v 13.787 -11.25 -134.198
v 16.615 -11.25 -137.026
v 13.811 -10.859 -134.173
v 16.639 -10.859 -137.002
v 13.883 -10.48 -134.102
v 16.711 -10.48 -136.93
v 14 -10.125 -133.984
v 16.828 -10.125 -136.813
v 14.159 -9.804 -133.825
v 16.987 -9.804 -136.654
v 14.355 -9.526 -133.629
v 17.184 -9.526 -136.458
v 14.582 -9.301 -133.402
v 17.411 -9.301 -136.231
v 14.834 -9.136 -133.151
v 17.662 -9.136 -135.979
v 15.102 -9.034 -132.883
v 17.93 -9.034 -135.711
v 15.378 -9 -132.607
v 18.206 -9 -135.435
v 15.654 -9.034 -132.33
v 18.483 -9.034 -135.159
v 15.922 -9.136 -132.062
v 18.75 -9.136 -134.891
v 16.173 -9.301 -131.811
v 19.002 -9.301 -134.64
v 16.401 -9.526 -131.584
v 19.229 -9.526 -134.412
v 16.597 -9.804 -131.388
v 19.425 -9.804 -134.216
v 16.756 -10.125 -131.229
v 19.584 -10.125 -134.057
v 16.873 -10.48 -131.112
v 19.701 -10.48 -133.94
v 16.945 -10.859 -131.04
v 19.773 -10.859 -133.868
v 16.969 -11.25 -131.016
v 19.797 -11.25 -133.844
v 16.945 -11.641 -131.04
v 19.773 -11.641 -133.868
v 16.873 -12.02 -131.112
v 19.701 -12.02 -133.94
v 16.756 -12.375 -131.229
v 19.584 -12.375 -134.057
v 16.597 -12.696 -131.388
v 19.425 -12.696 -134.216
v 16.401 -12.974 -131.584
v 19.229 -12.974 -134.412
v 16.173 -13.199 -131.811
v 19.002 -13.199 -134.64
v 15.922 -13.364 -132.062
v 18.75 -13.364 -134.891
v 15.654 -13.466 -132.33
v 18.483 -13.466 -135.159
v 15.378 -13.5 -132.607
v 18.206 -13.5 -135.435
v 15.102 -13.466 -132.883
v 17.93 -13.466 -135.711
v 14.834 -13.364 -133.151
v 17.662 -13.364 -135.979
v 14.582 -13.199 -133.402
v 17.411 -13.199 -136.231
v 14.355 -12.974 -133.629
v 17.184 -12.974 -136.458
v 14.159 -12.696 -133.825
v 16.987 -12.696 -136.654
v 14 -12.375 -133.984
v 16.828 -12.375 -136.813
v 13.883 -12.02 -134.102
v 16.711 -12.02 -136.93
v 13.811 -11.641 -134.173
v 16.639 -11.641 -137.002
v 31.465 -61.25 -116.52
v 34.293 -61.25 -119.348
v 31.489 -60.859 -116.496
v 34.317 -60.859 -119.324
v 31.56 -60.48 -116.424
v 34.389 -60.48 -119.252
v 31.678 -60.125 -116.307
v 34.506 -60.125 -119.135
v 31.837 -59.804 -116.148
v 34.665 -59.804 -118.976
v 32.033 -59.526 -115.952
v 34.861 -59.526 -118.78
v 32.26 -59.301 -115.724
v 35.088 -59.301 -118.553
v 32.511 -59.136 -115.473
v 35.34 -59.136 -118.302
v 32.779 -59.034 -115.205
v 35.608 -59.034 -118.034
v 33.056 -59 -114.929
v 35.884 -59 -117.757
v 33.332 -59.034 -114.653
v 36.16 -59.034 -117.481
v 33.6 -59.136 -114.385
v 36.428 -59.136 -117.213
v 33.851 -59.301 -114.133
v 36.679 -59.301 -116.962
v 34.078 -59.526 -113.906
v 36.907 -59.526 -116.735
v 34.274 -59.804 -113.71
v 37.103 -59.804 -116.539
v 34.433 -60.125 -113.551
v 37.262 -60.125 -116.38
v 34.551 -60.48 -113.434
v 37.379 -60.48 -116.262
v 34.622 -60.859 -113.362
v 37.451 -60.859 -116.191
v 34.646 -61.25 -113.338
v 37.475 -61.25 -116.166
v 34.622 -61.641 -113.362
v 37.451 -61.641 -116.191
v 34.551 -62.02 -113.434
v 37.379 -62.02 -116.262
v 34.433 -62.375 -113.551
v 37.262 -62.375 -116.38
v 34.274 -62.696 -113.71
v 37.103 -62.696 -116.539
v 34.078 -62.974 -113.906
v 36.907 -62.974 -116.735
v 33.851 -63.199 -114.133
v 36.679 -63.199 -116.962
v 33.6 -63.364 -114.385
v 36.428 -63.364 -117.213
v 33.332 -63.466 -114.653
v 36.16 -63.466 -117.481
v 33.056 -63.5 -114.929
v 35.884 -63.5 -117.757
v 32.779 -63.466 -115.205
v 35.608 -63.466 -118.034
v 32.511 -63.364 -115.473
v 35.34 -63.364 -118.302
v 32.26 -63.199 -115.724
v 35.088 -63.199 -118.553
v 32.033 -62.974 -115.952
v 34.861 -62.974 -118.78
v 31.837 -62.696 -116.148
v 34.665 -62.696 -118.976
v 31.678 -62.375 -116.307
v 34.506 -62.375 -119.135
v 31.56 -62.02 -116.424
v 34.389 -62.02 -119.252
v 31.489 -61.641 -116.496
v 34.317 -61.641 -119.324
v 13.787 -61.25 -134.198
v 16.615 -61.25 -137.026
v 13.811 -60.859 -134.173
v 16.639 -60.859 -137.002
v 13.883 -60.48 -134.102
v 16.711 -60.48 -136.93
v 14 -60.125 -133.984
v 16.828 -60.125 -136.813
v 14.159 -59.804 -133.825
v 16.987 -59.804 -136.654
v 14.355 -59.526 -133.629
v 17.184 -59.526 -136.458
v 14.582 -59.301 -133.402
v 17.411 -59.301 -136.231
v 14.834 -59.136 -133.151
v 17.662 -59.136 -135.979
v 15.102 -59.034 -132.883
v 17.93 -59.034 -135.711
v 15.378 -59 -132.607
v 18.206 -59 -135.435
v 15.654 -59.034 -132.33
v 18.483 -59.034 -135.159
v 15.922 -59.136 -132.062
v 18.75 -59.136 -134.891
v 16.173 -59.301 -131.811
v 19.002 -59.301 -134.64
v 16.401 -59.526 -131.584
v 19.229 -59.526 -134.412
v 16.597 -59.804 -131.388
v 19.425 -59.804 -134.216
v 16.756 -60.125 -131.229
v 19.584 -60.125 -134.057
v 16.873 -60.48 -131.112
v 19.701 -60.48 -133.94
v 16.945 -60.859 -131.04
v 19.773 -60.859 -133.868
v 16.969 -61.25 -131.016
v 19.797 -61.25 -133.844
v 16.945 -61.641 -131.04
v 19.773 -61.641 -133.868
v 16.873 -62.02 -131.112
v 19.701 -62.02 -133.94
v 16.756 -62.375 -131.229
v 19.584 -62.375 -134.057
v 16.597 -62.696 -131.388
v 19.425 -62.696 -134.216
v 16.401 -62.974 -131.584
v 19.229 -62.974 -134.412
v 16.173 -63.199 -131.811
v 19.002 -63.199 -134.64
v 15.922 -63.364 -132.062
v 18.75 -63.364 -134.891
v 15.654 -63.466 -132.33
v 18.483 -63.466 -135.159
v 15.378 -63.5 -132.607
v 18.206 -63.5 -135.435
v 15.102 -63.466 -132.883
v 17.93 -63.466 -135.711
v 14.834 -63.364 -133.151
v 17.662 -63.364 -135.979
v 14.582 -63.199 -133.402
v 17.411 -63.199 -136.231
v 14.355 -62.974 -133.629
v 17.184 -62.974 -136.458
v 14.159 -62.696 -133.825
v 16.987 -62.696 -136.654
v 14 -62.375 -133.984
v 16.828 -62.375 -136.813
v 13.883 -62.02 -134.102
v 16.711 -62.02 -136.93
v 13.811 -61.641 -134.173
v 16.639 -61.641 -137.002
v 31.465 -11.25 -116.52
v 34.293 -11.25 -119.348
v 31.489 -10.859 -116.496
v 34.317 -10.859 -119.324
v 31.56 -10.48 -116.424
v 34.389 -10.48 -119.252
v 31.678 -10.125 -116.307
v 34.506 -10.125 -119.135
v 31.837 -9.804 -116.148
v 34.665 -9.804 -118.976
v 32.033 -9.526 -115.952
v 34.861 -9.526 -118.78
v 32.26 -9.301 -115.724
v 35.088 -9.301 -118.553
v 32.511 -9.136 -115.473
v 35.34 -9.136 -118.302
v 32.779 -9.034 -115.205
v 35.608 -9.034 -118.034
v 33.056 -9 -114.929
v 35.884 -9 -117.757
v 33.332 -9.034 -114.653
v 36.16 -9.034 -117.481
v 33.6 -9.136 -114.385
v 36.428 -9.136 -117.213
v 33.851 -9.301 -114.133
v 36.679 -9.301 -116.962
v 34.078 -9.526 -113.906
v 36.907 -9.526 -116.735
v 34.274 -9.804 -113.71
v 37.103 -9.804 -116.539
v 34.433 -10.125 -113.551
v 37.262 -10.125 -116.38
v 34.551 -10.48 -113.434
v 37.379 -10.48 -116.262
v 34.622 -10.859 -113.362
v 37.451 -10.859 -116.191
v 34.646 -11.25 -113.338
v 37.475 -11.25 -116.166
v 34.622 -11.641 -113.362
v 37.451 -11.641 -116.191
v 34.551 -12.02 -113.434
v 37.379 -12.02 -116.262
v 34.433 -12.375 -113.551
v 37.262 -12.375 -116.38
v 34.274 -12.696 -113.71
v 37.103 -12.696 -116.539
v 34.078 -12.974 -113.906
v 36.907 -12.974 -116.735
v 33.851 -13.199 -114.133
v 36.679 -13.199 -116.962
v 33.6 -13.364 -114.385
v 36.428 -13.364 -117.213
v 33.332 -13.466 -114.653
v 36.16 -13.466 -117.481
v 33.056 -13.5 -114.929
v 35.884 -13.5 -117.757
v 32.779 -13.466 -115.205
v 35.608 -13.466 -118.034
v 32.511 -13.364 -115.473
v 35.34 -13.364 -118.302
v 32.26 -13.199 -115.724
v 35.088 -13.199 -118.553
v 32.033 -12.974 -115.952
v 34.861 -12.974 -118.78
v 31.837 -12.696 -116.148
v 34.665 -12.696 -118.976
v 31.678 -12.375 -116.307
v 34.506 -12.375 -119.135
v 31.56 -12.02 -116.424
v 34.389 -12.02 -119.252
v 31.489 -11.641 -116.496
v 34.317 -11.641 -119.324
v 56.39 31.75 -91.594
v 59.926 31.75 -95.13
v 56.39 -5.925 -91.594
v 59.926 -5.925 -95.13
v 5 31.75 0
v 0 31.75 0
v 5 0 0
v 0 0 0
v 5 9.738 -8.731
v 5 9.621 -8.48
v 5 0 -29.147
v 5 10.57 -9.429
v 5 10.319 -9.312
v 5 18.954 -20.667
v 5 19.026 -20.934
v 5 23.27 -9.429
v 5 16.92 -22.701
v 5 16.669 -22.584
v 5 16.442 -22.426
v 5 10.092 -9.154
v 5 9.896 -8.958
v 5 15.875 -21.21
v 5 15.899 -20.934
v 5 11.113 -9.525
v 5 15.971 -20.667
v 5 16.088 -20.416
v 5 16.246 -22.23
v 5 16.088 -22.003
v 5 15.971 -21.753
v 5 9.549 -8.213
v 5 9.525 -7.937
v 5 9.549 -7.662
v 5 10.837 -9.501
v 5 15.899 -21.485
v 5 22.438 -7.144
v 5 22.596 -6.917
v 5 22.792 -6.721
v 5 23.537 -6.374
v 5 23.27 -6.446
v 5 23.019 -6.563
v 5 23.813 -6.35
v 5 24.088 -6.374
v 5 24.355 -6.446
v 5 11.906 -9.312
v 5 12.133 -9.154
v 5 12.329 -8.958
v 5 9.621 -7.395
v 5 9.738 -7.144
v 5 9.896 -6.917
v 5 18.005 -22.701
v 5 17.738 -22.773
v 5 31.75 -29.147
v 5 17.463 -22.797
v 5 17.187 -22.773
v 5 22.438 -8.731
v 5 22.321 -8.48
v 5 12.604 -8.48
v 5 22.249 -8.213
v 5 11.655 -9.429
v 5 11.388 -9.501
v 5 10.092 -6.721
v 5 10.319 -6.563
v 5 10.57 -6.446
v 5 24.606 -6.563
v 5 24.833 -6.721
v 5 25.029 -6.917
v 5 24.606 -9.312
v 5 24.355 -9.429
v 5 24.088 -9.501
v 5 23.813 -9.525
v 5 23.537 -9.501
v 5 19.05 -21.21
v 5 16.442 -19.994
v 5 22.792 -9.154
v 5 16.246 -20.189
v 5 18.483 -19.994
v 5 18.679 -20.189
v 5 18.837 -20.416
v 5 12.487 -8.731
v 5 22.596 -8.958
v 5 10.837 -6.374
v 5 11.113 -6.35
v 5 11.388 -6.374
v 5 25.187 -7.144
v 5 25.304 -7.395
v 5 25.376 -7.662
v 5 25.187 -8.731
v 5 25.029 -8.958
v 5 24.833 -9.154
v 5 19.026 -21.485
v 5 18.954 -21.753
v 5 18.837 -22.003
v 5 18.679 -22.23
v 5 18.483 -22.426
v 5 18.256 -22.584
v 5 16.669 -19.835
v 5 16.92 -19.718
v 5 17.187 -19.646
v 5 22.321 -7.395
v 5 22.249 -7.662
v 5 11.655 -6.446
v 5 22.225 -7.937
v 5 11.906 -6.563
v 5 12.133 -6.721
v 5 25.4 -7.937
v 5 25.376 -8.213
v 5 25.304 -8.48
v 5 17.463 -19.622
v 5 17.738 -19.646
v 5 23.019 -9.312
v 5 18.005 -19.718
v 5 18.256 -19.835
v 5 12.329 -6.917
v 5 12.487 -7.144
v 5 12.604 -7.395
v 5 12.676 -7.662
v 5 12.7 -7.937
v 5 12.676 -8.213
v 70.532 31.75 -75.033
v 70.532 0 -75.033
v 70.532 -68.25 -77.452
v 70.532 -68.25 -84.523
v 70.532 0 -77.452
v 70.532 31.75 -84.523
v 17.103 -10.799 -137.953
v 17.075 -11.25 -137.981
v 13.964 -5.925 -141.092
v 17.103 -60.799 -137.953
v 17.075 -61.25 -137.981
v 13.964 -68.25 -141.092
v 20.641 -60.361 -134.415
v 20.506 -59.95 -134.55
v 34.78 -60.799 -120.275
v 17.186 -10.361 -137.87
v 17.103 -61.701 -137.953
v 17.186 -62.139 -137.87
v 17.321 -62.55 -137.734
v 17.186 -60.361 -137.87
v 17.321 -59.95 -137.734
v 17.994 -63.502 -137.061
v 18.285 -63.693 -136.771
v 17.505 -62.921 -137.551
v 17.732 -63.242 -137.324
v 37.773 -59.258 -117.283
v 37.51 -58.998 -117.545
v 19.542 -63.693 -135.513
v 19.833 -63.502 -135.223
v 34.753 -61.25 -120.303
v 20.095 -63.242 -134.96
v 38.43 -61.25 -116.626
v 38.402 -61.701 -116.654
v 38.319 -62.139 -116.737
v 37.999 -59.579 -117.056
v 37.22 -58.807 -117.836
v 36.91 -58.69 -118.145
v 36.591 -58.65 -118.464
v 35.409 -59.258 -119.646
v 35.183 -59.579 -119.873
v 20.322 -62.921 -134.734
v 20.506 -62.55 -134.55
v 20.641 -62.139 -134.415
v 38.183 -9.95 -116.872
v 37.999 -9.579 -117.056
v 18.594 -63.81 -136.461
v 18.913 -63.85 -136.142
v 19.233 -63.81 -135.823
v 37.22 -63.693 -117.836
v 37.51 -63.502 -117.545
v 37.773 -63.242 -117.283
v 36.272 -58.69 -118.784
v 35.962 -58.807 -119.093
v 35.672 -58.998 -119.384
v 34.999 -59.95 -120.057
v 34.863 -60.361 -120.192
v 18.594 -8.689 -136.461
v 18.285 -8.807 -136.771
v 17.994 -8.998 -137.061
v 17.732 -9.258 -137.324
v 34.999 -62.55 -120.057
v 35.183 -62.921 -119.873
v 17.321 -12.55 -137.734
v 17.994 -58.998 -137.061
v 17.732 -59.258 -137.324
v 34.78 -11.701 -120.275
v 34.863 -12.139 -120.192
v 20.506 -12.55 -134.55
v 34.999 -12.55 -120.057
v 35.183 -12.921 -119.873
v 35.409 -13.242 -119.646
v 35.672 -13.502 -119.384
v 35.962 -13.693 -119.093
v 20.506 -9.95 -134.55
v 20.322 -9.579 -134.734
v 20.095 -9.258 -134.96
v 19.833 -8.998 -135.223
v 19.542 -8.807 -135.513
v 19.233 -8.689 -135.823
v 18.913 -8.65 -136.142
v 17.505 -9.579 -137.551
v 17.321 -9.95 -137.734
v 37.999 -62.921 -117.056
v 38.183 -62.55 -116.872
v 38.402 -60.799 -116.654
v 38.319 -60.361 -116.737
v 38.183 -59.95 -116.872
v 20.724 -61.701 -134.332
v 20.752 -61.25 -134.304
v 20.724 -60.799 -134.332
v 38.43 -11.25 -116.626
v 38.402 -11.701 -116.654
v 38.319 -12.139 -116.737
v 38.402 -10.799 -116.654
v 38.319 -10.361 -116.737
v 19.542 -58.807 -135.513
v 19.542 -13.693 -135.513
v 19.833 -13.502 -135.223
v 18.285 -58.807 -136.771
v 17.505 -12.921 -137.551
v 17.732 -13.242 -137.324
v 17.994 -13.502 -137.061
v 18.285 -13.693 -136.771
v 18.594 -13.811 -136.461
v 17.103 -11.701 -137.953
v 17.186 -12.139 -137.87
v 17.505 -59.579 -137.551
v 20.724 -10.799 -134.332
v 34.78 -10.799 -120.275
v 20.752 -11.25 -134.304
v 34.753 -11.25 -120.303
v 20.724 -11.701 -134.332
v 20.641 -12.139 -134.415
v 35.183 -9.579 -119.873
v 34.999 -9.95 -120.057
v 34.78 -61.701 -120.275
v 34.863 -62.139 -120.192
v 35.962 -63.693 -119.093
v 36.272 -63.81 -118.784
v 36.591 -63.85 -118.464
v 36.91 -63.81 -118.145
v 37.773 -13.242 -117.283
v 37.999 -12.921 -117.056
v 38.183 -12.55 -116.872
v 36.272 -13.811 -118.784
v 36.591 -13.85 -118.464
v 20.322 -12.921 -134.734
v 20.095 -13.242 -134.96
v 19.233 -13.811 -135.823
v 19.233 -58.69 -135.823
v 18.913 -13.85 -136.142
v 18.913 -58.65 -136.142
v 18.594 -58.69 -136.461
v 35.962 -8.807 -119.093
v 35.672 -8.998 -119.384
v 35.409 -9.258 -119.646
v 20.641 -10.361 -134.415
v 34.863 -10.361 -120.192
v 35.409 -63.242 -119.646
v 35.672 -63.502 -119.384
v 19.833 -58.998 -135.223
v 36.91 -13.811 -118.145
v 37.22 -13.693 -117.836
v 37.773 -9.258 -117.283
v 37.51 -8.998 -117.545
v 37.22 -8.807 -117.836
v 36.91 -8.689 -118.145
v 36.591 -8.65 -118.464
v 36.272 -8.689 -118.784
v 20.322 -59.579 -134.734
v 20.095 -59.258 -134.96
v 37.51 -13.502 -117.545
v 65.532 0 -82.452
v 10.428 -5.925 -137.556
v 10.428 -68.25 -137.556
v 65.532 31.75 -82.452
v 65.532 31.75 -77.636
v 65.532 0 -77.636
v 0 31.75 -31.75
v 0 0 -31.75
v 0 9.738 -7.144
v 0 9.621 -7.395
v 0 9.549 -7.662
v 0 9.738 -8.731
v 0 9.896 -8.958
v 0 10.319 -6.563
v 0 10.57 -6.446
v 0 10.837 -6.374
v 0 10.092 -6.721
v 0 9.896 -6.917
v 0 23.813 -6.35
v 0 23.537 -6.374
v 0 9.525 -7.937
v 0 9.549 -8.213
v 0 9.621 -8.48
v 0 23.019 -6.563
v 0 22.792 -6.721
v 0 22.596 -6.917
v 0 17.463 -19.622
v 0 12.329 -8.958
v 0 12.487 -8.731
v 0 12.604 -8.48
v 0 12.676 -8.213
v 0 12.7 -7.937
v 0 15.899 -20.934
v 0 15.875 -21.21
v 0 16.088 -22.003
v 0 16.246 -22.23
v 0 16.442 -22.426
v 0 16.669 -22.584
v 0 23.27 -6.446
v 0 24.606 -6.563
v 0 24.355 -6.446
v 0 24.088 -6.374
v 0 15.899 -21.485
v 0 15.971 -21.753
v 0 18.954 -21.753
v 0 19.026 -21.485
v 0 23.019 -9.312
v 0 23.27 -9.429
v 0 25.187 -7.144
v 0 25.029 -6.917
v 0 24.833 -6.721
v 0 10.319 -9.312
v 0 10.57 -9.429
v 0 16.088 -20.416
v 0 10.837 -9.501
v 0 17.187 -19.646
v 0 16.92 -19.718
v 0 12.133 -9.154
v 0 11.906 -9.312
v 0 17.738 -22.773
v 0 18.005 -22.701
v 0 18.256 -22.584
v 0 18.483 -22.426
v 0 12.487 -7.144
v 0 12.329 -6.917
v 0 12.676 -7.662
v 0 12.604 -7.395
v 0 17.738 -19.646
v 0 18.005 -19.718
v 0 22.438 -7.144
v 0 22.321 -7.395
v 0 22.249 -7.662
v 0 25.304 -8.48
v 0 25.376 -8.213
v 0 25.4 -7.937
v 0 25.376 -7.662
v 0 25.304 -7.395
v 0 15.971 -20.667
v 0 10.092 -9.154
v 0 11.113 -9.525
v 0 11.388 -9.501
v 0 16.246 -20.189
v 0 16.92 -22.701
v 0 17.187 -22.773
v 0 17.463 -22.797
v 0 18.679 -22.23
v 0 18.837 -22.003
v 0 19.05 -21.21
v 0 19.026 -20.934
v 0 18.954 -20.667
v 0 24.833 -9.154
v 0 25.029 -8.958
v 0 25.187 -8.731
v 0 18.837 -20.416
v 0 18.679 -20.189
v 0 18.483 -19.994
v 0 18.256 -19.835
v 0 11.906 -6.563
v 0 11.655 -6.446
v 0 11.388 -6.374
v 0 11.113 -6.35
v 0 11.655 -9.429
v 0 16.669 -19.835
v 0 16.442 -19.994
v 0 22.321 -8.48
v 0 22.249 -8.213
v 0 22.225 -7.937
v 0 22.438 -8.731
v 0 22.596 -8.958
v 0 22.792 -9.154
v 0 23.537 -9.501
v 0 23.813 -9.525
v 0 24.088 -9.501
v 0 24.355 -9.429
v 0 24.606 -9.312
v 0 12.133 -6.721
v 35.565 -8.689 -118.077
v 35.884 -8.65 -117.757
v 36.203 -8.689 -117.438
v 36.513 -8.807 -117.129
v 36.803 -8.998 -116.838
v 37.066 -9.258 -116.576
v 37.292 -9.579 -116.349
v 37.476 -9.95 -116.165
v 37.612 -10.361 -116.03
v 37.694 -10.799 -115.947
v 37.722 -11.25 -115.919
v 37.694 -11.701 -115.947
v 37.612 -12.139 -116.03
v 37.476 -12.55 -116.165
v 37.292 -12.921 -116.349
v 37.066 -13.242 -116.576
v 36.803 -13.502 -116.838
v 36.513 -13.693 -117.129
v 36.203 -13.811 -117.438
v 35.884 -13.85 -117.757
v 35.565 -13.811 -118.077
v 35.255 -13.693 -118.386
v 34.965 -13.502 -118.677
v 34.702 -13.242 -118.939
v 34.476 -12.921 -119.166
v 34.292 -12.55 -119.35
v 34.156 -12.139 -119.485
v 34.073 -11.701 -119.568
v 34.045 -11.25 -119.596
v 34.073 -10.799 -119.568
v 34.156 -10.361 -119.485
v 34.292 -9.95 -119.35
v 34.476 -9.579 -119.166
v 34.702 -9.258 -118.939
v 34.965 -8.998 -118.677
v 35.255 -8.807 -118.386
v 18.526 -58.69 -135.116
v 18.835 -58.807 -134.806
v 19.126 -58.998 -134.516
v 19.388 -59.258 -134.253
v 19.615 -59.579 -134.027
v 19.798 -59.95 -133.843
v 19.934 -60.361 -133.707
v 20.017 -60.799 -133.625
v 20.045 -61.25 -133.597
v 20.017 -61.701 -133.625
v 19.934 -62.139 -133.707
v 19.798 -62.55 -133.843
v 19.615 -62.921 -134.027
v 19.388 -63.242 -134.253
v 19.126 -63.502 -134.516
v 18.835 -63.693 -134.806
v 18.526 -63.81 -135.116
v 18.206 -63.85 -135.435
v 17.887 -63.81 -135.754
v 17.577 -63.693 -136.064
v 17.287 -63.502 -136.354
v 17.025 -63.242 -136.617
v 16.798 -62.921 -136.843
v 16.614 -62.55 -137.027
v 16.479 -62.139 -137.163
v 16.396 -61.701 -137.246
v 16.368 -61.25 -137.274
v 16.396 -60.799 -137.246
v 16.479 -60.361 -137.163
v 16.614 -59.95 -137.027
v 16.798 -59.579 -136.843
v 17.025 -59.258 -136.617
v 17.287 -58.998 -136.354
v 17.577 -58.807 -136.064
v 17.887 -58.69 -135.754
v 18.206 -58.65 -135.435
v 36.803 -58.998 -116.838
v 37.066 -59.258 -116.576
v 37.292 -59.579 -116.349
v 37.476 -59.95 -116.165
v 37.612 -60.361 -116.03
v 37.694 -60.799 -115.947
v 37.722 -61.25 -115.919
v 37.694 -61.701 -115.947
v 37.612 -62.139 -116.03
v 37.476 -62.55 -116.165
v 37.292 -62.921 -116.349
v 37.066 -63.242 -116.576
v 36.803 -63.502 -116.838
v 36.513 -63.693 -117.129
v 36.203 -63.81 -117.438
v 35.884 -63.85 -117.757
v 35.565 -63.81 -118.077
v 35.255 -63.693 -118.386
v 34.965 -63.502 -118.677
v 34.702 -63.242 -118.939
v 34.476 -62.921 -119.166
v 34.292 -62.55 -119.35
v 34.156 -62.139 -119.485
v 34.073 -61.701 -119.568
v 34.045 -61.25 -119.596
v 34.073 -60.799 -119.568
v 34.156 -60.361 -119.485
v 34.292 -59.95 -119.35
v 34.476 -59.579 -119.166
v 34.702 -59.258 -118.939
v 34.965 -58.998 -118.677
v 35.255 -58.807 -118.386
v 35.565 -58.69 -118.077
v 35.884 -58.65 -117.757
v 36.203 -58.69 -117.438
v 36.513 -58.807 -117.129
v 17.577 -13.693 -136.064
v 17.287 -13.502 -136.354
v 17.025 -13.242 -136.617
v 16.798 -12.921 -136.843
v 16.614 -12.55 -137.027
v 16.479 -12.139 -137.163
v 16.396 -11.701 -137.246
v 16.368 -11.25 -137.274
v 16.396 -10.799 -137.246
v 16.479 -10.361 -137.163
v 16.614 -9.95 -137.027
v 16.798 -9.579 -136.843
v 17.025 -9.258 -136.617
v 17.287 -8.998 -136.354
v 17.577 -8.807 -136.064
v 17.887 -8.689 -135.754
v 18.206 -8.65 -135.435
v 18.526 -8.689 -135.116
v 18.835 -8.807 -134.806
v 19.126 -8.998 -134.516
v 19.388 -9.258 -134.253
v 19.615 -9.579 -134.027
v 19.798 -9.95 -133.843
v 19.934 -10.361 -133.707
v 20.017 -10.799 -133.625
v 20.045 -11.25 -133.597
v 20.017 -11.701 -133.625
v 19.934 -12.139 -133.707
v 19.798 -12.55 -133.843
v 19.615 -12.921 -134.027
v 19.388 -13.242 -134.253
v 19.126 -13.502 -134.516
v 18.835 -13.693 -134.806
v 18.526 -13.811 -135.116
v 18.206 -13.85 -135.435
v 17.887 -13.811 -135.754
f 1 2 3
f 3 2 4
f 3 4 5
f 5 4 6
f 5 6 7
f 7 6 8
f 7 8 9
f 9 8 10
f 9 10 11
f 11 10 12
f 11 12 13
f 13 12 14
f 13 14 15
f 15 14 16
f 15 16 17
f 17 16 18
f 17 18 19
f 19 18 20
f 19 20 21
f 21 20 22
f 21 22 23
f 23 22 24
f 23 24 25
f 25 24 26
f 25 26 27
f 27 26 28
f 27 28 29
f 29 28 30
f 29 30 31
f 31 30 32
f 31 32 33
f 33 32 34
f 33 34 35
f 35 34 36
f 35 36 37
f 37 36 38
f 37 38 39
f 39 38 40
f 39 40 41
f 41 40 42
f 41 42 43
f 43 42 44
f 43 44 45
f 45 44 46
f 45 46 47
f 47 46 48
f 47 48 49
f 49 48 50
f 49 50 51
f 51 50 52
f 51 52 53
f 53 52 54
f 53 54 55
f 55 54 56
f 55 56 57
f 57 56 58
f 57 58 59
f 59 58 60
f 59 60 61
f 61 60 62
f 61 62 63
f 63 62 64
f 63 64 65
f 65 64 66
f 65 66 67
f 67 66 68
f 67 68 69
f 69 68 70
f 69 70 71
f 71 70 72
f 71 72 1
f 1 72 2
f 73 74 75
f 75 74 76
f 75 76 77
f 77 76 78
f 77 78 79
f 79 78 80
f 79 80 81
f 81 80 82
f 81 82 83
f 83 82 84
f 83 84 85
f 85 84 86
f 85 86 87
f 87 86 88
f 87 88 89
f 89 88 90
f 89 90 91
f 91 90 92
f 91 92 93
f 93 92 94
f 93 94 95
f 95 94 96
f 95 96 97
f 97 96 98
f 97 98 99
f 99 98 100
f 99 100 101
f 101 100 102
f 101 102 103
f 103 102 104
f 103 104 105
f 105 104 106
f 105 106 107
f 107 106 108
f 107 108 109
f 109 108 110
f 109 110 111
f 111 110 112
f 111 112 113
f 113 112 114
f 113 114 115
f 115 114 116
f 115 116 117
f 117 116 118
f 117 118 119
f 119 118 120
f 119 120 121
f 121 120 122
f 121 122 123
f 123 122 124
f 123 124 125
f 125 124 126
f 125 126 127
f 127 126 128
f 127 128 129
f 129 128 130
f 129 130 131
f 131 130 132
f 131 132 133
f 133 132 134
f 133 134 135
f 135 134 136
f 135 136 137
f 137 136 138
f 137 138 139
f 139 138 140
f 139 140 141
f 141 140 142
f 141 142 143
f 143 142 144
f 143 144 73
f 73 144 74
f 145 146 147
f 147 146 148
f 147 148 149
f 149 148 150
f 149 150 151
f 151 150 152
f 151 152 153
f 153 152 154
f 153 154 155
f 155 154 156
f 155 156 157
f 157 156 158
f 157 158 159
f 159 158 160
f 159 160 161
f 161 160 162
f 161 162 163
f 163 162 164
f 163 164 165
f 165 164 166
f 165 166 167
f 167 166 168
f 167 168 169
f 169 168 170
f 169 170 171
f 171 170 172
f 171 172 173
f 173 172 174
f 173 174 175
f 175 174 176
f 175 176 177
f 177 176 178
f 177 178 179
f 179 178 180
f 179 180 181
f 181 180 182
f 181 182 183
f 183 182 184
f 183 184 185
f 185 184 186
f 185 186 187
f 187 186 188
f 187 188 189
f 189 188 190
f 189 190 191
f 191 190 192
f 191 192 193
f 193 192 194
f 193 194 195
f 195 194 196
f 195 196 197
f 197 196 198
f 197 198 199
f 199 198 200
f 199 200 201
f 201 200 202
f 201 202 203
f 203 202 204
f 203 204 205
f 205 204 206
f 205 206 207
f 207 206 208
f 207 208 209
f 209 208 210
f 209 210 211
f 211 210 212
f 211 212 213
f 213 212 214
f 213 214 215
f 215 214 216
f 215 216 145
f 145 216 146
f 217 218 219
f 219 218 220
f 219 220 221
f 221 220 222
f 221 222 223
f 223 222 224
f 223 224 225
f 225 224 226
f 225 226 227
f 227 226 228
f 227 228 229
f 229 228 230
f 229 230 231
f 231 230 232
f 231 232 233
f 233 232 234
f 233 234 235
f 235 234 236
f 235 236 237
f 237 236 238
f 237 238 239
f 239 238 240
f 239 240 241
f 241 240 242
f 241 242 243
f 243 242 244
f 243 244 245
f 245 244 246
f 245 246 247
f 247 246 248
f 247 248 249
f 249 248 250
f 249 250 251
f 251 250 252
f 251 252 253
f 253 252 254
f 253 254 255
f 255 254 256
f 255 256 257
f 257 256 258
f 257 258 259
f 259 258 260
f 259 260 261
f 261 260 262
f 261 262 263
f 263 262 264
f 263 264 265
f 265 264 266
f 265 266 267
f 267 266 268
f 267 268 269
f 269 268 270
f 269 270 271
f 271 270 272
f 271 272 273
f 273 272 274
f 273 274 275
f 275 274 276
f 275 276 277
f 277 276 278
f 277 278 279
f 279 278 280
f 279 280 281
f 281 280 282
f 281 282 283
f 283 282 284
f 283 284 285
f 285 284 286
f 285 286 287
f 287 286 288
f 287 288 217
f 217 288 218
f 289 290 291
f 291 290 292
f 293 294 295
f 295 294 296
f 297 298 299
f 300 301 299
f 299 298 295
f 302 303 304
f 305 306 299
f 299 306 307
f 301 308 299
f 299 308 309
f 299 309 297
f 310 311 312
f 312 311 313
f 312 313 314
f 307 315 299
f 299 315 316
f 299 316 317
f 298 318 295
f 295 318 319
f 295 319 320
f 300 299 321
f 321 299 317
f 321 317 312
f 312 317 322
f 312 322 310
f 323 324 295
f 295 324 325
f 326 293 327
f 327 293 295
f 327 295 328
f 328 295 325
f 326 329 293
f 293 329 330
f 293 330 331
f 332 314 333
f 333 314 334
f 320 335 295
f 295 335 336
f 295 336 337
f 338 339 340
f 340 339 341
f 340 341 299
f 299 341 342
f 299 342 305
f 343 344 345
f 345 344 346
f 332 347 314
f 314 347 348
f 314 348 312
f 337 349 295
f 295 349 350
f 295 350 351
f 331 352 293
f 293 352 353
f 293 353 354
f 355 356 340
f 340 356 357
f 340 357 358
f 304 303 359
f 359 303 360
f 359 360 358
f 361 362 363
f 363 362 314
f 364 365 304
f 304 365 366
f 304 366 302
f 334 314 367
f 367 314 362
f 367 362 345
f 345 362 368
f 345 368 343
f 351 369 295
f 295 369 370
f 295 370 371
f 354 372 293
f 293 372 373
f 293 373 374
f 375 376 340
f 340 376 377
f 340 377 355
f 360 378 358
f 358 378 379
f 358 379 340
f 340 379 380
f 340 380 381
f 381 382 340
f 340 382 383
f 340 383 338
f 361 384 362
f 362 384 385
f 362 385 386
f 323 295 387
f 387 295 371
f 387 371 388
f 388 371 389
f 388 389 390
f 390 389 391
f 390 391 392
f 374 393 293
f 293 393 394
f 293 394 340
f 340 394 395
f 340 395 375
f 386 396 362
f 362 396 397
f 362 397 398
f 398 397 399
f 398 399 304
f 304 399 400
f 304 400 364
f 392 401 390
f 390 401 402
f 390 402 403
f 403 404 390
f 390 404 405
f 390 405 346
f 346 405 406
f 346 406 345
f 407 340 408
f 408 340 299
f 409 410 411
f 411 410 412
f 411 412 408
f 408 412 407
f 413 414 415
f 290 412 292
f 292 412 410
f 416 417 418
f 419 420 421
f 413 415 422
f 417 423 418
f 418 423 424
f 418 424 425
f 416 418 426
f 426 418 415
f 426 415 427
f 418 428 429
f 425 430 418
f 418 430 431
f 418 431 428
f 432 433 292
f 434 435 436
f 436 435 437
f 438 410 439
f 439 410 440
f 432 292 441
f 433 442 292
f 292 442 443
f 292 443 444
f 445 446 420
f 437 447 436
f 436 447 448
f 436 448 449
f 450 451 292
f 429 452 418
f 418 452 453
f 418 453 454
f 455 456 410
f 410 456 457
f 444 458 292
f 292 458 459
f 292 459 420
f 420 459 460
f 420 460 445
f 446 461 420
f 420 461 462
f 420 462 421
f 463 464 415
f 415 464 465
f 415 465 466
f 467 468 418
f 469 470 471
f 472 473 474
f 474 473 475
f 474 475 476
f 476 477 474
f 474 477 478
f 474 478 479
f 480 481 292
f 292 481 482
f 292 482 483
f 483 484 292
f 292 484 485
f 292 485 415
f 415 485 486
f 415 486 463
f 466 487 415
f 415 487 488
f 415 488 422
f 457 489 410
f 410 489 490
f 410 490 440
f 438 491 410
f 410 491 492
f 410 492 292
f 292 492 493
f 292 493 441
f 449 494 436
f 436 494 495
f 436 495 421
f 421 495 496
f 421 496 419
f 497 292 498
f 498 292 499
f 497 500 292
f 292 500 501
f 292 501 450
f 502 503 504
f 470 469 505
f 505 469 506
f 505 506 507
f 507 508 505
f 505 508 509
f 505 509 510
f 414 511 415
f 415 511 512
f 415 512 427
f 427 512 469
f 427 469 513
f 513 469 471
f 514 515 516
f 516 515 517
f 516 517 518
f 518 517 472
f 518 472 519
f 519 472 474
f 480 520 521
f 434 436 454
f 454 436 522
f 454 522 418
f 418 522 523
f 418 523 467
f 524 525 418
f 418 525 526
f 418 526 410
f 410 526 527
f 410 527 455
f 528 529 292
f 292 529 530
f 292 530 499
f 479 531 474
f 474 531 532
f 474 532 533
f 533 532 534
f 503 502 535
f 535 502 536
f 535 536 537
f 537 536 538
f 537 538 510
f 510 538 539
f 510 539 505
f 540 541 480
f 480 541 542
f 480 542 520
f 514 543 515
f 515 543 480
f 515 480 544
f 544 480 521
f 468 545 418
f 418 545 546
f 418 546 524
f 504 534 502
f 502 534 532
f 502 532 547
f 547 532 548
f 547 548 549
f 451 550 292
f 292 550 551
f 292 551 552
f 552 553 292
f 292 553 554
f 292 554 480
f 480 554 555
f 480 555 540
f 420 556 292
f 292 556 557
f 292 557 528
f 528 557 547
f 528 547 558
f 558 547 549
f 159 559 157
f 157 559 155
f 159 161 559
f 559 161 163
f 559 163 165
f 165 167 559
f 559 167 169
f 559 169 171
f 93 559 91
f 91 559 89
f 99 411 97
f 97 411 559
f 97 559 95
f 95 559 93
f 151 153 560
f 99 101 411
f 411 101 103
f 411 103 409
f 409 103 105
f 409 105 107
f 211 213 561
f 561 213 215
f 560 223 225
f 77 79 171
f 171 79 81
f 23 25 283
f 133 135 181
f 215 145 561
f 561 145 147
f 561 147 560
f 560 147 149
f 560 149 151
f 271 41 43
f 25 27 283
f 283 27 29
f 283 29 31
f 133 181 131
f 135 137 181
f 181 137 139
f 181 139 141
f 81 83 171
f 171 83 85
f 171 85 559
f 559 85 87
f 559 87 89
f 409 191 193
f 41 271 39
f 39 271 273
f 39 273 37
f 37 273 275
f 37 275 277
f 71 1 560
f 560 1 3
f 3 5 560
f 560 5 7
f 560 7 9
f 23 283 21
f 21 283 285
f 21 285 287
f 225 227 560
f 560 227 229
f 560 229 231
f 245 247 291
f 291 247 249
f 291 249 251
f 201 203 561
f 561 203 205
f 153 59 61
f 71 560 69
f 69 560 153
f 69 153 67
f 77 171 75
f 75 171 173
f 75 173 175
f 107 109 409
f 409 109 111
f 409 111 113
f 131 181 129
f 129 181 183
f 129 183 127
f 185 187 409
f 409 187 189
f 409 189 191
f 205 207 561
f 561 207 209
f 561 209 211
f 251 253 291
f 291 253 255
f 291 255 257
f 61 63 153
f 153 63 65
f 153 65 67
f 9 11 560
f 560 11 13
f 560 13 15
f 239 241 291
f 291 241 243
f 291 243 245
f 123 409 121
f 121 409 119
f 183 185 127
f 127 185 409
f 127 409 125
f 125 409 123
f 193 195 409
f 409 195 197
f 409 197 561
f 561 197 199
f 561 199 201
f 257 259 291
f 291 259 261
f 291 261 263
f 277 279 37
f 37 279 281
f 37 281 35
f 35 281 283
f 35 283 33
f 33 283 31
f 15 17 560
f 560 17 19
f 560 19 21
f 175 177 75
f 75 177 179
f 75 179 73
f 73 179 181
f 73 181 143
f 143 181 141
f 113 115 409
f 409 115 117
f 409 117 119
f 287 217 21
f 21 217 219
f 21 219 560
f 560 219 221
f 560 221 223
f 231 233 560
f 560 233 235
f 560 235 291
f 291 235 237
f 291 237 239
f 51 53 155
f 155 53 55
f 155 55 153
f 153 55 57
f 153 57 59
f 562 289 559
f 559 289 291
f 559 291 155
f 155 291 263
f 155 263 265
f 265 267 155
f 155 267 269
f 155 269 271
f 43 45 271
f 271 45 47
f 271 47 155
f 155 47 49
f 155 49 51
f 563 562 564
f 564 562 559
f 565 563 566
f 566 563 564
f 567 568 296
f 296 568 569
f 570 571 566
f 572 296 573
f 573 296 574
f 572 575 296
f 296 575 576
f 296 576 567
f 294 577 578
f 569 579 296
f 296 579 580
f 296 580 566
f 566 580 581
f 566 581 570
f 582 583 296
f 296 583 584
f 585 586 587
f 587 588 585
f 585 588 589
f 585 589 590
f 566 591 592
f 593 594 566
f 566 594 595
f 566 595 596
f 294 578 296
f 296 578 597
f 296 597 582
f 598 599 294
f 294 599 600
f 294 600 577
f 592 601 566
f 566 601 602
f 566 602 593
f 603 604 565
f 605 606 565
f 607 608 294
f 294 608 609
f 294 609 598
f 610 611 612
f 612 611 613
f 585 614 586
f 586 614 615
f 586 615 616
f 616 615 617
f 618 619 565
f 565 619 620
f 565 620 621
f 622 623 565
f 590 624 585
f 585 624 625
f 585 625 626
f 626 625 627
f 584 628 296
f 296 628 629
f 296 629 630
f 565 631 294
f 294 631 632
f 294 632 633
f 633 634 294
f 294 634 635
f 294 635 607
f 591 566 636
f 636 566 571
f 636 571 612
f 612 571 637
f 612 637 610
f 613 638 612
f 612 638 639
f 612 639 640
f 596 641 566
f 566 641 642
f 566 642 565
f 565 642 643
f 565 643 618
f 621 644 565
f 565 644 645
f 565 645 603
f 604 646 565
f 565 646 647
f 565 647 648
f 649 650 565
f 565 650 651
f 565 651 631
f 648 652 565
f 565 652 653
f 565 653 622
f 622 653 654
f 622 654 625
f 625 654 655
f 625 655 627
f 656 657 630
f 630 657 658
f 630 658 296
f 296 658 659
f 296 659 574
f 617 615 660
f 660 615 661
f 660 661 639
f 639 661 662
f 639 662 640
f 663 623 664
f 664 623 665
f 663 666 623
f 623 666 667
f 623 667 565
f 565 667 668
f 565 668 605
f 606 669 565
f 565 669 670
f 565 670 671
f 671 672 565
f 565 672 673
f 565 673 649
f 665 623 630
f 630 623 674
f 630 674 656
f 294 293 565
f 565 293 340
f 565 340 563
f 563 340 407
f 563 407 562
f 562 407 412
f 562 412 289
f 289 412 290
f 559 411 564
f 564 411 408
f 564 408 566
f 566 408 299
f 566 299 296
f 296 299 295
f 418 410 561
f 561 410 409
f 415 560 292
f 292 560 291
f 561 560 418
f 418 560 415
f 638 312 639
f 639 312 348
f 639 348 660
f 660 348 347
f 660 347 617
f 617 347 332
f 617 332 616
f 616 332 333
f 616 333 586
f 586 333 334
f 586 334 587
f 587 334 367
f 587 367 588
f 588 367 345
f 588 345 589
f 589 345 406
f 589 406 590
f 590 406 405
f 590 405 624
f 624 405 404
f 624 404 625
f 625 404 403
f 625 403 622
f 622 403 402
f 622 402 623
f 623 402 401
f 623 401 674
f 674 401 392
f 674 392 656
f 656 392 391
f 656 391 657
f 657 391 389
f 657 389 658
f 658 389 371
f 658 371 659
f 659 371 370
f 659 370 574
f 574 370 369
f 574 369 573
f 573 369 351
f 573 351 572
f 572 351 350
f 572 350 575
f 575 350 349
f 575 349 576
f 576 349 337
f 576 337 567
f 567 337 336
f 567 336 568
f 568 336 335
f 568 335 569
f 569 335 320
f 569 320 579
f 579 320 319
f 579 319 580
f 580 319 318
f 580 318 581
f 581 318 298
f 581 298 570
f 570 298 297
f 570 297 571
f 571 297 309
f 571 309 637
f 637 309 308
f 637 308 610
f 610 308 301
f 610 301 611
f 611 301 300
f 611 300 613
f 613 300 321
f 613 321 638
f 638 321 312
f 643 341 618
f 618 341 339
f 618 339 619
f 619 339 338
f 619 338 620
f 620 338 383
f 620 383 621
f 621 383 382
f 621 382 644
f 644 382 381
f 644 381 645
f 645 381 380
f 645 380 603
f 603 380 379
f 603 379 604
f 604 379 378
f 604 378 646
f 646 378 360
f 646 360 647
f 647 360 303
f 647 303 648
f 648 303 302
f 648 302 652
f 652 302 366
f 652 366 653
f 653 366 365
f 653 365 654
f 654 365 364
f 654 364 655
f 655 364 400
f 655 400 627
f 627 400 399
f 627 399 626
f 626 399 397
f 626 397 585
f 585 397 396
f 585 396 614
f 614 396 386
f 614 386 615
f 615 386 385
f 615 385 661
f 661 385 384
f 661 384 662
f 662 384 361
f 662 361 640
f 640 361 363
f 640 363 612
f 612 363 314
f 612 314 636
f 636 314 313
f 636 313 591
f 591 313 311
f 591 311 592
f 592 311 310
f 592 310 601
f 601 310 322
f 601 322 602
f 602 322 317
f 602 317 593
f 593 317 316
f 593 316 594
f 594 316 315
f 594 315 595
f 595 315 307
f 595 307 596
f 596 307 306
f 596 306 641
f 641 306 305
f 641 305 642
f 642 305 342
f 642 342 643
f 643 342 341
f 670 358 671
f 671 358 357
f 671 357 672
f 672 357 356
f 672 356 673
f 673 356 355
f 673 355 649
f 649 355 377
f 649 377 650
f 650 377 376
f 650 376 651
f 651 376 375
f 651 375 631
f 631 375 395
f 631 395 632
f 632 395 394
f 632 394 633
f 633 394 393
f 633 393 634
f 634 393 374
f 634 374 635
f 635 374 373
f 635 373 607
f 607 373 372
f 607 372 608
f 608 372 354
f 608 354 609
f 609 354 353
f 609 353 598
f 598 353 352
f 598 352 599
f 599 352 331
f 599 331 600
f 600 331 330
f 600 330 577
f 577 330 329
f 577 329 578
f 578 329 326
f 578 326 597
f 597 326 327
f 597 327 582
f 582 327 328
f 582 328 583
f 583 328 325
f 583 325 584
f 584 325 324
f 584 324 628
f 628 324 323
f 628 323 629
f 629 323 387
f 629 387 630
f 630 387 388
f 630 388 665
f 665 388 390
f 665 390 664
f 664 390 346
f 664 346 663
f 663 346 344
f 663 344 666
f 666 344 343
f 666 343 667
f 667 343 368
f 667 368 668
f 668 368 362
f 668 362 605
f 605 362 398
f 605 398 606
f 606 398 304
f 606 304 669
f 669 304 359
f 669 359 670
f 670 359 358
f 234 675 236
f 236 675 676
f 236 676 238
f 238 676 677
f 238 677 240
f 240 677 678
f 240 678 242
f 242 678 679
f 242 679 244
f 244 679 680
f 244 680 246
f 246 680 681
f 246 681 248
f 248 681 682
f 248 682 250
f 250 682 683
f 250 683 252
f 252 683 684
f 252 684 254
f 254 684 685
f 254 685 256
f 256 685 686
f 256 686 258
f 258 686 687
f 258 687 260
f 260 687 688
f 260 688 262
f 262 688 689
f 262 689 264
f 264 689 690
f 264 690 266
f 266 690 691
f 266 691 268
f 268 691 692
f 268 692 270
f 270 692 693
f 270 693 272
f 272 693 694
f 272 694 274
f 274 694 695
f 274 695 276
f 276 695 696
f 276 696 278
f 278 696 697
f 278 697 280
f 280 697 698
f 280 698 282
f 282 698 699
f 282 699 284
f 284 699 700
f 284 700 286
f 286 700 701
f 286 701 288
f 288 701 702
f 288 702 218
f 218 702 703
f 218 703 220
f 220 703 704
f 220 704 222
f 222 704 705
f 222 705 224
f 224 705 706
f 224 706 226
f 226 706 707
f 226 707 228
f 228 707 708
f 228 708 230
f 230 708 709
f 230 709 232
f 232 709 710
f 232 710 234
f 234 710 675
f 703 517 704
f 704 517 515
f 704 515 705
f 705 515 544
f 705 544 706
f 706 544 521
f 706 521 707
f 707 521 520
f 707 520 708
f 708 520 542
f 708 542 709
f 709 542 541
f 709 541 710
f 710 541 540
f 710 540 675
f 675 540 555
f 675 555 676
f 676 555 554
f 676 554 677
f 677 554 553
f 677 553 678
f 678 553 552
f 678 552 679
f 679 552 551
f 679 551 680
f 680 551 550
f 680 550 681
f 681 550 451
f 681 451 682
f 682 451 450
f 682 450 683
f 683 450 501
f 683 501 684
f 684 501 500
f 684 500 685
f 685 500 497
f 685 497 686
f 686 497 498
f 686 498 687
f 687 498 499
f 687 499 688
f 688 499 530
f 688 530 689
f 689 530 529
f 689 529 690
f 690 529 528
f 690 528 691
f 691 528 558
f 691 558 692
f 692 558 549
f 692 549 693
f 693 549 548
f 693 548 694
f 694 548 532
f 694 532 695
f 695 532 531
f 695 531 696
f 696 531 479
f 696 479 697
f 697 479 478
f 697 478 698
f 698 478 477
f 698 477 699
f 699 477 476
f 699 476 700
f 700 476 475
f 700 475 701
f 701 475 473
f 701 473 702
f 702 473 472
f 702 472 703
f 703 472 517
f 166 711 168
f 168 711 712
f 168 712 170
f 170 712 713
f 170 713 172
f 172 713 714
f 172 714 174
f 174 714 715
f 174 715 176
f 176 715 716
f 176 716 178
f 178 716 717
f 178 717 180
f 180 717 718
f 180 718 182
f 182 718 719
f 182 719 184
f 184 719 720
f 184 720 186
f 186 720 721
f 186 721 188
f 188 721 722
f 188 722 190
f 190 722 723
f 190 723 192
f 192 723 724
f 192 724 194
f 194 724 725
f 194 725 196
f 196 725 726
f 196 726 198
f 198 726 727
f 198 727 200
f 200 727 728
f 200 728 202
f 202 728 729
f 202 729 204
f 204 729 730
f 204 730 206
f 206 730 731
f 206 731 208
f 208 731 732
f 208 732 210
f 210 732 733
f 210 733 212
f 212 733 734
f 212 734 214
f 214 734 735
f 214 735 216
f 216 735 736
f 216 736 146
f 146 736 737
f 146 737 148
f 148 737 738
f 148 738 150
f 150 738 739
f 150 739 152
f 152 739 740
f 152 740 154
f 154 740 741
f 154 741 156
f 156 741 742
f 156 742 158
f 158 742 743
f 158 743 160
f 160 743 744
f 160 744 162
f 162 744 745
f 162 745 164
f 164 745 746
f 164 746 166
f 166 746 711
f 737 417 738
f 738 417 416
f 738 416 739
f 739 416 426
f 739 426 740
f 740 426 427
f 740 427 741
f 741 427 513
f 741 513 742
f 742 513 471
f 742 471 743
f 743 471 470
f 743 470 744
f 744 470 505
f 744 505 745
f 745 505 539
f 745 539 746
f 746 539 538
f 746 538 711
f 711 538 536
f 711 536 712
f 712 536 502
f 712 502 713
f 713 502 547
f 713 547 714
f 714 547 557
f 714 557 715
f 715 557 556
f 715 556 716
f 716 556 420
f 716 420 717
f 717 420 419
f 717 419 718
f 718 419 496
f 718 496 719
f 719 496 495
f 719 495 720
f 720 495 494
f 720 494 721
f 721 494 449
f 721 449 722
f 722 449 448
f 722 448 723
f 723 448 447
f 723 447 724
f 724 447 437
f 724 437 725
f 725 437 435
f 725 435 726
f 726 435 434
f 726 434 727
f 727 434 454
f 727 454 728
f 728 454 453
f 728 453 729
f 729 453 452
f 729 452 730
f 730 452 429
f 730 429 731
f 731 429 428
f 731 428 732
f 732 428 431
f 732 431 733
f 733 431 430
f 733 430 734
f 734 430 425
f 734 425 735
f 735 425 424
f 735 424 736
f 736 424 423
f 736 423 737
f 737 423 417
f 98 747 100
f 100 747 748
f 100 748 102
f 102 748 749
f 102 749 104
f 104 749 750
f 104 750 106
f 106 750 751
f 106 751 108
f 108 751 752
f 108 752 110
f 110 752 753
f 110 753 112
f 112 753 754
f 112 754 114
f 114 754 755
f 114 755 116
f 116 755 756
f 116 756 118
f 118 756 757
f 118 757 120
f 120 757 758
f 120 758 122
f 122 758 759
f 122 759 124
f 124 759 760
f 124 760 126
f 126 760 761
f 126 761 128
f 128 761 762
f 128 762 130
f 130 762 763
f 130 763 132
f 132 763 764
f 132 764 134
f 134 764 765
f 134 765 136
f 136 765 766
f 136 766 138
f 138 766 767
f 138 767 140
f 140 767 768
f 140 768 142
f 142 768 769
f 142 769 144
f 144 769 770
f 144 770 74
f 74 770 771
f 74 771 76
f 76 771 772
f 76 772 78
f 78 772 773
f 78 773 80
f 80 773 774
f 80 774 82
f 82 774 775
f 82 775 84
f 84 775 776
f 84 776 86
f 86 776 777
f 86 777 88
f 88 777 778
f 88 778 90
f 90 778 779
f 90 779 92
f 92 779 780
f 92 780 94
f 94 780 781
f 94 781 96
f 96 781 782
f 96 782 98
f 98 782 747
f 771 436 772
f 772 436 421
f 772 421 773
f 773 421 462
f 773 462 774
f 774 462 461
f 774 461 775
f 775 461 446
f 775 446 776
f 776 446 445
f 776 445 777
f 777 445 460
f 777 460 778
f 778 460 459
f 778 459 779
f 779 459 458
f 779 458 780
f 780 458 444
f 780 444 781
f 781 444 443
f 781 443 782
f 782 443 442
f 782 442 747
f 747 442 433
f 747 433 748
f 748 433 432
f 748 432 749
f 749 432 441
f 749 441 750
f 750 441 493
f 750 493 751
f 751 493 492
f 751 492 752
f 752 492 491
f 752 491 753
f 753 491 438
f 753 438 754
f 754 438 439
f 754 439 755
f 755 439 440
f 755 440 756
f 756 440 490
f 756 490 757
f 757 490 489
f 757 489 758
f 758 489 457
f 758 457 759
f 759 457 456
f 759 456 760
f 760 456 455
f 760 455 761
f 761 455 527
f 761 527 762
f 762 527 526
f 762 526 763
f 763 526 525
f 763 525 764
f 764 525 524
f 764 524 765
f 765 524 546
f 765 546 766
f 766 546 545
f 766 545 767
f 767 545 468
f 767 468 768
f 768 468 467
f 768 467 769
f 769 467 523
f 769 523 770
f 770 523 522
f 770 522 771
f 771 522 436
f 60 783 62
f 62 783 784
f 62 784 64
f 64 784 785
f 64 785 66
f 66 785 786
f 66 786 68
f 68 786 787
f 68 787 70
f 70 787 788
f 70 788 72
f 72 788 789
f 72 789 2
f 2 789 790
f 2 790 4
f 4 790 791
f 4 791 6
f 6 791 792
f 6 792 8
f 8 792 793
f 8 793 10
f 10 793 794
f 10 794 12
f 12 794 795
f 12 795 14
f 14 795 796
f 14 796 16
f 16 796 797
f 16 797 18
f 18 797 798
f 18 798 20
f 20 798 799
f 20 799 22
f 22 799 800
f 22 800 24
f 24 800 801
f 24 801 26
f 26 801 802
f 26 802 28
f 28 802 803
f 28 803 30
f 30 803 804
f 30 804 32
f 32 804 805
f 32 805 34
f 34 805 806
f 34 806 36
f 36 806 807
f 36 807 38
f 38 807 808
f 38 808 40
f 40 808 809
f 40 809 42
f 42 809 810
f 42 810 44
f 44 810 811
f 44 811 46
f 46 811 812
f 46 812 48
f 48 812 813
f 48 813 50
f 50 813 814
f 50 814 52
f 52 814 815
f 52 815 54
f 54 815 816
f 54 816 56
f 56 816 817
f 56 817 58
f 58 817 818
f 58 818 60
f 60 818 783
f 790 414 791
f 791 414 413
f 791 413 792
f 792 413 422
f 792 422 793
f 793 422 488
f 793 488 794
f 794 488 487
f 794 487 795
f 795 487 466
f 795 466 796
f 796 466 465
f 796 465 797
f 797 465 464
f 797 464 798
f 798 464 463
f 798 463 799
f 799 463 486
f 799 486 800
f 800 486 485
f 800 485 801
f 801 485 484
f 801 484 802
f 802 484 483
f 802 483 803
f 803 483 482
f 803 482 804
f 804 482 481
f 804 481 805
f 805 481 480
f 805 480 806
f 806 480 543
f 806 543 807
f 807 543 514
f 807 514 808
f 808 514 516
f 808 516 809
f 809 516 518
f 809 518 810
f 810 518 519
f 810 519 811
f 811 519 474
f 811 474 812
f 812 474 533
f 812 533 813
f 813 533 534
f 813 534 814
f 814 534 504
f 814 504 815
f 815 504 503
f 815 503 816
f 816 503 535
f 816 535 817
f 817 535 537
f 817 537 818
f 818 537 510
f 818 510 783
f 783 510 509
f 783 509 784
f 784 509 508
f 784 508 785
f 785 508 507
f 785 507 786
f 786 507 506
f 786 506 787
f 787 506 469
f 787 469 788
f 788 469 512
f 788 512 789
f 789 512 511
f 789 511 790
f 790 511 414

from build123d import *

# Parameters (mm, degrees)
PROFILEBOSS_EXTRUDE1_DEPTH      = 31.75
RIGHTPROFILEBOSS_EXTRUDE2_DEPTH = 68.25
SKETCH6_W                       = 5
SKETCH6_H                       = 62.32526864
TOPPROFILEBOSS_EXTRUDE5_DEPTH   = 65
SKETCH7_R                       = 2.25
HDMI_HOLESCUT_EXTRUDE1_DEPTH    = 130.147862652
SKETCH8_R                       = 1.5875
MOUNTHOLESCUT_EXTRUDE2_DEPTH    = 170.880700314
SKETCH9_R                       = 2.6
HDMIBORECUT_EXTRUDE3_DEPTH      = 1


with BuildPart() as part:
    # Sketch1 → ProfileBoss-Extrude1 (new body)
    with BuildSketch(Plane(origin=(0, 0, 0), x_dir=(1, 0, 0), z_dir=(0, 1, 0))):
        Polygon((0, 0), (0, 31.75), (65.532163543, 77.636114908), (65.532163543, 82.452293716), (56.390027919, 91.594429339), (59.925561825, 95.129963245), (70.532163543, 84.523361528), (70.532163543, 75.033279655), (5, 29.147164747), (5, 0), align=None)
    extrude(amount=PROFILEBOSS_EXTRUDE1_DEPTH)

    # Sketch2 → RightProfileBoss-Extrude2 (add)
    with BuildSketch(Plane.XZ):
        Polygon((59.925561825, -95.129963245), (70.532163543, -84.523361528), (70.532163543, -77.452293716), (65.532163543, -82.452293716), (56.390027919, -91.594429339), align=None)
    extrude(amount=RIGHTPROFILEBOSS_EXTRUDE2_DEPTH)

    # Sketch6 → TopProfileBoss-Extrude5 (add)
    with BuildSketch(Plane(origin=(-17.60220071, 0, -17.60220071), x_dir=(-0.7071067811865449, 0, 0.7071067811865502), z_dir=(-0.7071067811865502, 0, -0.7071067811865449))):
        with Locations((-107.140813238, -37.08736568)):
            Rectangle(SKETCH6_W, SKETCH6_H)
    extrude(amount=TOPPROFILEBOSS_EXTRUDE5_DEPTH)

    # Sketch7 → HDMI HolesCut-Extrude1 (cut, through all)
    with BuildSketch(Plane(origin=(77.527762535, 0, -77.527762535), x_dir=(-0.7071067811865493, 0, -0.7071067811865457), z_dir=(0.7071067811865457, 0, -0.7071067811865493))):
        with Locations((82.893270972, -11.25)):
            Circle(SKETCH7_R)
        with Locations((57.893270972, -11.25)):
            Circle(SKETCH7_R)
        with Locations((82.893270972, -61.25)):
            Circle(SKETCH7_R)
        with Locations((57.893270972, -61.25)):
            Circle(SKETCH7_R)
    extrude(amount=-HDMI_HOLESCUT_EXTRUDE1_DEPTH, mode=Mode.SUBTRACT)

    # Sketch8 → MountHolesCut-Extrude2 (cut, through all)
    with BuildSketch(Plane(origin=(5, 0, 0), x_dir=(0, 0, -1), z_dir=(1, 0, 0))):
        with Locations((7.9375, 23.8125)):
            Circle(SKETCH8_R)
        with Locations((21.209664747, 17.4625)):
            Circle(SKETCH8_R)
        with Locations((7.9375, 11.1125)):
            Circle(SKETCH8_R)
    extrude(amount=-MOUNTHOLESCUT_EXTRUDE2_DEPTH, mode=Mode.SUBTRACT)

    # Sketch9 → HDMIBoreCut-Extrude3 (cut)
    with BuildSketch(Plane(origin=(77.527762535, 0, -77.527762535), x_dir=(-0.7071067811865493, 0, -0.7071067811865457), z_dir=(0.7071067811865457, 0, -0.7071067811865493))):
        with Locations((57.893270972, -11.25)):
            Circle(SKETCH9_R)
        with Locations((82.893270972, -11.25)):
            Circle(SKETCH9_R)
        with Locations((82.893270972, -61.25)):
            Circle(SKETCH9_R)
        with Locations((57.893270972, -61.25)):
            Circle(SKETCH9_R)
    extrude(amount=-HDMIBORECUT_EXTRUDE3_DEPTH, mode=Mode.SUBTRACT)


solid = part.part
